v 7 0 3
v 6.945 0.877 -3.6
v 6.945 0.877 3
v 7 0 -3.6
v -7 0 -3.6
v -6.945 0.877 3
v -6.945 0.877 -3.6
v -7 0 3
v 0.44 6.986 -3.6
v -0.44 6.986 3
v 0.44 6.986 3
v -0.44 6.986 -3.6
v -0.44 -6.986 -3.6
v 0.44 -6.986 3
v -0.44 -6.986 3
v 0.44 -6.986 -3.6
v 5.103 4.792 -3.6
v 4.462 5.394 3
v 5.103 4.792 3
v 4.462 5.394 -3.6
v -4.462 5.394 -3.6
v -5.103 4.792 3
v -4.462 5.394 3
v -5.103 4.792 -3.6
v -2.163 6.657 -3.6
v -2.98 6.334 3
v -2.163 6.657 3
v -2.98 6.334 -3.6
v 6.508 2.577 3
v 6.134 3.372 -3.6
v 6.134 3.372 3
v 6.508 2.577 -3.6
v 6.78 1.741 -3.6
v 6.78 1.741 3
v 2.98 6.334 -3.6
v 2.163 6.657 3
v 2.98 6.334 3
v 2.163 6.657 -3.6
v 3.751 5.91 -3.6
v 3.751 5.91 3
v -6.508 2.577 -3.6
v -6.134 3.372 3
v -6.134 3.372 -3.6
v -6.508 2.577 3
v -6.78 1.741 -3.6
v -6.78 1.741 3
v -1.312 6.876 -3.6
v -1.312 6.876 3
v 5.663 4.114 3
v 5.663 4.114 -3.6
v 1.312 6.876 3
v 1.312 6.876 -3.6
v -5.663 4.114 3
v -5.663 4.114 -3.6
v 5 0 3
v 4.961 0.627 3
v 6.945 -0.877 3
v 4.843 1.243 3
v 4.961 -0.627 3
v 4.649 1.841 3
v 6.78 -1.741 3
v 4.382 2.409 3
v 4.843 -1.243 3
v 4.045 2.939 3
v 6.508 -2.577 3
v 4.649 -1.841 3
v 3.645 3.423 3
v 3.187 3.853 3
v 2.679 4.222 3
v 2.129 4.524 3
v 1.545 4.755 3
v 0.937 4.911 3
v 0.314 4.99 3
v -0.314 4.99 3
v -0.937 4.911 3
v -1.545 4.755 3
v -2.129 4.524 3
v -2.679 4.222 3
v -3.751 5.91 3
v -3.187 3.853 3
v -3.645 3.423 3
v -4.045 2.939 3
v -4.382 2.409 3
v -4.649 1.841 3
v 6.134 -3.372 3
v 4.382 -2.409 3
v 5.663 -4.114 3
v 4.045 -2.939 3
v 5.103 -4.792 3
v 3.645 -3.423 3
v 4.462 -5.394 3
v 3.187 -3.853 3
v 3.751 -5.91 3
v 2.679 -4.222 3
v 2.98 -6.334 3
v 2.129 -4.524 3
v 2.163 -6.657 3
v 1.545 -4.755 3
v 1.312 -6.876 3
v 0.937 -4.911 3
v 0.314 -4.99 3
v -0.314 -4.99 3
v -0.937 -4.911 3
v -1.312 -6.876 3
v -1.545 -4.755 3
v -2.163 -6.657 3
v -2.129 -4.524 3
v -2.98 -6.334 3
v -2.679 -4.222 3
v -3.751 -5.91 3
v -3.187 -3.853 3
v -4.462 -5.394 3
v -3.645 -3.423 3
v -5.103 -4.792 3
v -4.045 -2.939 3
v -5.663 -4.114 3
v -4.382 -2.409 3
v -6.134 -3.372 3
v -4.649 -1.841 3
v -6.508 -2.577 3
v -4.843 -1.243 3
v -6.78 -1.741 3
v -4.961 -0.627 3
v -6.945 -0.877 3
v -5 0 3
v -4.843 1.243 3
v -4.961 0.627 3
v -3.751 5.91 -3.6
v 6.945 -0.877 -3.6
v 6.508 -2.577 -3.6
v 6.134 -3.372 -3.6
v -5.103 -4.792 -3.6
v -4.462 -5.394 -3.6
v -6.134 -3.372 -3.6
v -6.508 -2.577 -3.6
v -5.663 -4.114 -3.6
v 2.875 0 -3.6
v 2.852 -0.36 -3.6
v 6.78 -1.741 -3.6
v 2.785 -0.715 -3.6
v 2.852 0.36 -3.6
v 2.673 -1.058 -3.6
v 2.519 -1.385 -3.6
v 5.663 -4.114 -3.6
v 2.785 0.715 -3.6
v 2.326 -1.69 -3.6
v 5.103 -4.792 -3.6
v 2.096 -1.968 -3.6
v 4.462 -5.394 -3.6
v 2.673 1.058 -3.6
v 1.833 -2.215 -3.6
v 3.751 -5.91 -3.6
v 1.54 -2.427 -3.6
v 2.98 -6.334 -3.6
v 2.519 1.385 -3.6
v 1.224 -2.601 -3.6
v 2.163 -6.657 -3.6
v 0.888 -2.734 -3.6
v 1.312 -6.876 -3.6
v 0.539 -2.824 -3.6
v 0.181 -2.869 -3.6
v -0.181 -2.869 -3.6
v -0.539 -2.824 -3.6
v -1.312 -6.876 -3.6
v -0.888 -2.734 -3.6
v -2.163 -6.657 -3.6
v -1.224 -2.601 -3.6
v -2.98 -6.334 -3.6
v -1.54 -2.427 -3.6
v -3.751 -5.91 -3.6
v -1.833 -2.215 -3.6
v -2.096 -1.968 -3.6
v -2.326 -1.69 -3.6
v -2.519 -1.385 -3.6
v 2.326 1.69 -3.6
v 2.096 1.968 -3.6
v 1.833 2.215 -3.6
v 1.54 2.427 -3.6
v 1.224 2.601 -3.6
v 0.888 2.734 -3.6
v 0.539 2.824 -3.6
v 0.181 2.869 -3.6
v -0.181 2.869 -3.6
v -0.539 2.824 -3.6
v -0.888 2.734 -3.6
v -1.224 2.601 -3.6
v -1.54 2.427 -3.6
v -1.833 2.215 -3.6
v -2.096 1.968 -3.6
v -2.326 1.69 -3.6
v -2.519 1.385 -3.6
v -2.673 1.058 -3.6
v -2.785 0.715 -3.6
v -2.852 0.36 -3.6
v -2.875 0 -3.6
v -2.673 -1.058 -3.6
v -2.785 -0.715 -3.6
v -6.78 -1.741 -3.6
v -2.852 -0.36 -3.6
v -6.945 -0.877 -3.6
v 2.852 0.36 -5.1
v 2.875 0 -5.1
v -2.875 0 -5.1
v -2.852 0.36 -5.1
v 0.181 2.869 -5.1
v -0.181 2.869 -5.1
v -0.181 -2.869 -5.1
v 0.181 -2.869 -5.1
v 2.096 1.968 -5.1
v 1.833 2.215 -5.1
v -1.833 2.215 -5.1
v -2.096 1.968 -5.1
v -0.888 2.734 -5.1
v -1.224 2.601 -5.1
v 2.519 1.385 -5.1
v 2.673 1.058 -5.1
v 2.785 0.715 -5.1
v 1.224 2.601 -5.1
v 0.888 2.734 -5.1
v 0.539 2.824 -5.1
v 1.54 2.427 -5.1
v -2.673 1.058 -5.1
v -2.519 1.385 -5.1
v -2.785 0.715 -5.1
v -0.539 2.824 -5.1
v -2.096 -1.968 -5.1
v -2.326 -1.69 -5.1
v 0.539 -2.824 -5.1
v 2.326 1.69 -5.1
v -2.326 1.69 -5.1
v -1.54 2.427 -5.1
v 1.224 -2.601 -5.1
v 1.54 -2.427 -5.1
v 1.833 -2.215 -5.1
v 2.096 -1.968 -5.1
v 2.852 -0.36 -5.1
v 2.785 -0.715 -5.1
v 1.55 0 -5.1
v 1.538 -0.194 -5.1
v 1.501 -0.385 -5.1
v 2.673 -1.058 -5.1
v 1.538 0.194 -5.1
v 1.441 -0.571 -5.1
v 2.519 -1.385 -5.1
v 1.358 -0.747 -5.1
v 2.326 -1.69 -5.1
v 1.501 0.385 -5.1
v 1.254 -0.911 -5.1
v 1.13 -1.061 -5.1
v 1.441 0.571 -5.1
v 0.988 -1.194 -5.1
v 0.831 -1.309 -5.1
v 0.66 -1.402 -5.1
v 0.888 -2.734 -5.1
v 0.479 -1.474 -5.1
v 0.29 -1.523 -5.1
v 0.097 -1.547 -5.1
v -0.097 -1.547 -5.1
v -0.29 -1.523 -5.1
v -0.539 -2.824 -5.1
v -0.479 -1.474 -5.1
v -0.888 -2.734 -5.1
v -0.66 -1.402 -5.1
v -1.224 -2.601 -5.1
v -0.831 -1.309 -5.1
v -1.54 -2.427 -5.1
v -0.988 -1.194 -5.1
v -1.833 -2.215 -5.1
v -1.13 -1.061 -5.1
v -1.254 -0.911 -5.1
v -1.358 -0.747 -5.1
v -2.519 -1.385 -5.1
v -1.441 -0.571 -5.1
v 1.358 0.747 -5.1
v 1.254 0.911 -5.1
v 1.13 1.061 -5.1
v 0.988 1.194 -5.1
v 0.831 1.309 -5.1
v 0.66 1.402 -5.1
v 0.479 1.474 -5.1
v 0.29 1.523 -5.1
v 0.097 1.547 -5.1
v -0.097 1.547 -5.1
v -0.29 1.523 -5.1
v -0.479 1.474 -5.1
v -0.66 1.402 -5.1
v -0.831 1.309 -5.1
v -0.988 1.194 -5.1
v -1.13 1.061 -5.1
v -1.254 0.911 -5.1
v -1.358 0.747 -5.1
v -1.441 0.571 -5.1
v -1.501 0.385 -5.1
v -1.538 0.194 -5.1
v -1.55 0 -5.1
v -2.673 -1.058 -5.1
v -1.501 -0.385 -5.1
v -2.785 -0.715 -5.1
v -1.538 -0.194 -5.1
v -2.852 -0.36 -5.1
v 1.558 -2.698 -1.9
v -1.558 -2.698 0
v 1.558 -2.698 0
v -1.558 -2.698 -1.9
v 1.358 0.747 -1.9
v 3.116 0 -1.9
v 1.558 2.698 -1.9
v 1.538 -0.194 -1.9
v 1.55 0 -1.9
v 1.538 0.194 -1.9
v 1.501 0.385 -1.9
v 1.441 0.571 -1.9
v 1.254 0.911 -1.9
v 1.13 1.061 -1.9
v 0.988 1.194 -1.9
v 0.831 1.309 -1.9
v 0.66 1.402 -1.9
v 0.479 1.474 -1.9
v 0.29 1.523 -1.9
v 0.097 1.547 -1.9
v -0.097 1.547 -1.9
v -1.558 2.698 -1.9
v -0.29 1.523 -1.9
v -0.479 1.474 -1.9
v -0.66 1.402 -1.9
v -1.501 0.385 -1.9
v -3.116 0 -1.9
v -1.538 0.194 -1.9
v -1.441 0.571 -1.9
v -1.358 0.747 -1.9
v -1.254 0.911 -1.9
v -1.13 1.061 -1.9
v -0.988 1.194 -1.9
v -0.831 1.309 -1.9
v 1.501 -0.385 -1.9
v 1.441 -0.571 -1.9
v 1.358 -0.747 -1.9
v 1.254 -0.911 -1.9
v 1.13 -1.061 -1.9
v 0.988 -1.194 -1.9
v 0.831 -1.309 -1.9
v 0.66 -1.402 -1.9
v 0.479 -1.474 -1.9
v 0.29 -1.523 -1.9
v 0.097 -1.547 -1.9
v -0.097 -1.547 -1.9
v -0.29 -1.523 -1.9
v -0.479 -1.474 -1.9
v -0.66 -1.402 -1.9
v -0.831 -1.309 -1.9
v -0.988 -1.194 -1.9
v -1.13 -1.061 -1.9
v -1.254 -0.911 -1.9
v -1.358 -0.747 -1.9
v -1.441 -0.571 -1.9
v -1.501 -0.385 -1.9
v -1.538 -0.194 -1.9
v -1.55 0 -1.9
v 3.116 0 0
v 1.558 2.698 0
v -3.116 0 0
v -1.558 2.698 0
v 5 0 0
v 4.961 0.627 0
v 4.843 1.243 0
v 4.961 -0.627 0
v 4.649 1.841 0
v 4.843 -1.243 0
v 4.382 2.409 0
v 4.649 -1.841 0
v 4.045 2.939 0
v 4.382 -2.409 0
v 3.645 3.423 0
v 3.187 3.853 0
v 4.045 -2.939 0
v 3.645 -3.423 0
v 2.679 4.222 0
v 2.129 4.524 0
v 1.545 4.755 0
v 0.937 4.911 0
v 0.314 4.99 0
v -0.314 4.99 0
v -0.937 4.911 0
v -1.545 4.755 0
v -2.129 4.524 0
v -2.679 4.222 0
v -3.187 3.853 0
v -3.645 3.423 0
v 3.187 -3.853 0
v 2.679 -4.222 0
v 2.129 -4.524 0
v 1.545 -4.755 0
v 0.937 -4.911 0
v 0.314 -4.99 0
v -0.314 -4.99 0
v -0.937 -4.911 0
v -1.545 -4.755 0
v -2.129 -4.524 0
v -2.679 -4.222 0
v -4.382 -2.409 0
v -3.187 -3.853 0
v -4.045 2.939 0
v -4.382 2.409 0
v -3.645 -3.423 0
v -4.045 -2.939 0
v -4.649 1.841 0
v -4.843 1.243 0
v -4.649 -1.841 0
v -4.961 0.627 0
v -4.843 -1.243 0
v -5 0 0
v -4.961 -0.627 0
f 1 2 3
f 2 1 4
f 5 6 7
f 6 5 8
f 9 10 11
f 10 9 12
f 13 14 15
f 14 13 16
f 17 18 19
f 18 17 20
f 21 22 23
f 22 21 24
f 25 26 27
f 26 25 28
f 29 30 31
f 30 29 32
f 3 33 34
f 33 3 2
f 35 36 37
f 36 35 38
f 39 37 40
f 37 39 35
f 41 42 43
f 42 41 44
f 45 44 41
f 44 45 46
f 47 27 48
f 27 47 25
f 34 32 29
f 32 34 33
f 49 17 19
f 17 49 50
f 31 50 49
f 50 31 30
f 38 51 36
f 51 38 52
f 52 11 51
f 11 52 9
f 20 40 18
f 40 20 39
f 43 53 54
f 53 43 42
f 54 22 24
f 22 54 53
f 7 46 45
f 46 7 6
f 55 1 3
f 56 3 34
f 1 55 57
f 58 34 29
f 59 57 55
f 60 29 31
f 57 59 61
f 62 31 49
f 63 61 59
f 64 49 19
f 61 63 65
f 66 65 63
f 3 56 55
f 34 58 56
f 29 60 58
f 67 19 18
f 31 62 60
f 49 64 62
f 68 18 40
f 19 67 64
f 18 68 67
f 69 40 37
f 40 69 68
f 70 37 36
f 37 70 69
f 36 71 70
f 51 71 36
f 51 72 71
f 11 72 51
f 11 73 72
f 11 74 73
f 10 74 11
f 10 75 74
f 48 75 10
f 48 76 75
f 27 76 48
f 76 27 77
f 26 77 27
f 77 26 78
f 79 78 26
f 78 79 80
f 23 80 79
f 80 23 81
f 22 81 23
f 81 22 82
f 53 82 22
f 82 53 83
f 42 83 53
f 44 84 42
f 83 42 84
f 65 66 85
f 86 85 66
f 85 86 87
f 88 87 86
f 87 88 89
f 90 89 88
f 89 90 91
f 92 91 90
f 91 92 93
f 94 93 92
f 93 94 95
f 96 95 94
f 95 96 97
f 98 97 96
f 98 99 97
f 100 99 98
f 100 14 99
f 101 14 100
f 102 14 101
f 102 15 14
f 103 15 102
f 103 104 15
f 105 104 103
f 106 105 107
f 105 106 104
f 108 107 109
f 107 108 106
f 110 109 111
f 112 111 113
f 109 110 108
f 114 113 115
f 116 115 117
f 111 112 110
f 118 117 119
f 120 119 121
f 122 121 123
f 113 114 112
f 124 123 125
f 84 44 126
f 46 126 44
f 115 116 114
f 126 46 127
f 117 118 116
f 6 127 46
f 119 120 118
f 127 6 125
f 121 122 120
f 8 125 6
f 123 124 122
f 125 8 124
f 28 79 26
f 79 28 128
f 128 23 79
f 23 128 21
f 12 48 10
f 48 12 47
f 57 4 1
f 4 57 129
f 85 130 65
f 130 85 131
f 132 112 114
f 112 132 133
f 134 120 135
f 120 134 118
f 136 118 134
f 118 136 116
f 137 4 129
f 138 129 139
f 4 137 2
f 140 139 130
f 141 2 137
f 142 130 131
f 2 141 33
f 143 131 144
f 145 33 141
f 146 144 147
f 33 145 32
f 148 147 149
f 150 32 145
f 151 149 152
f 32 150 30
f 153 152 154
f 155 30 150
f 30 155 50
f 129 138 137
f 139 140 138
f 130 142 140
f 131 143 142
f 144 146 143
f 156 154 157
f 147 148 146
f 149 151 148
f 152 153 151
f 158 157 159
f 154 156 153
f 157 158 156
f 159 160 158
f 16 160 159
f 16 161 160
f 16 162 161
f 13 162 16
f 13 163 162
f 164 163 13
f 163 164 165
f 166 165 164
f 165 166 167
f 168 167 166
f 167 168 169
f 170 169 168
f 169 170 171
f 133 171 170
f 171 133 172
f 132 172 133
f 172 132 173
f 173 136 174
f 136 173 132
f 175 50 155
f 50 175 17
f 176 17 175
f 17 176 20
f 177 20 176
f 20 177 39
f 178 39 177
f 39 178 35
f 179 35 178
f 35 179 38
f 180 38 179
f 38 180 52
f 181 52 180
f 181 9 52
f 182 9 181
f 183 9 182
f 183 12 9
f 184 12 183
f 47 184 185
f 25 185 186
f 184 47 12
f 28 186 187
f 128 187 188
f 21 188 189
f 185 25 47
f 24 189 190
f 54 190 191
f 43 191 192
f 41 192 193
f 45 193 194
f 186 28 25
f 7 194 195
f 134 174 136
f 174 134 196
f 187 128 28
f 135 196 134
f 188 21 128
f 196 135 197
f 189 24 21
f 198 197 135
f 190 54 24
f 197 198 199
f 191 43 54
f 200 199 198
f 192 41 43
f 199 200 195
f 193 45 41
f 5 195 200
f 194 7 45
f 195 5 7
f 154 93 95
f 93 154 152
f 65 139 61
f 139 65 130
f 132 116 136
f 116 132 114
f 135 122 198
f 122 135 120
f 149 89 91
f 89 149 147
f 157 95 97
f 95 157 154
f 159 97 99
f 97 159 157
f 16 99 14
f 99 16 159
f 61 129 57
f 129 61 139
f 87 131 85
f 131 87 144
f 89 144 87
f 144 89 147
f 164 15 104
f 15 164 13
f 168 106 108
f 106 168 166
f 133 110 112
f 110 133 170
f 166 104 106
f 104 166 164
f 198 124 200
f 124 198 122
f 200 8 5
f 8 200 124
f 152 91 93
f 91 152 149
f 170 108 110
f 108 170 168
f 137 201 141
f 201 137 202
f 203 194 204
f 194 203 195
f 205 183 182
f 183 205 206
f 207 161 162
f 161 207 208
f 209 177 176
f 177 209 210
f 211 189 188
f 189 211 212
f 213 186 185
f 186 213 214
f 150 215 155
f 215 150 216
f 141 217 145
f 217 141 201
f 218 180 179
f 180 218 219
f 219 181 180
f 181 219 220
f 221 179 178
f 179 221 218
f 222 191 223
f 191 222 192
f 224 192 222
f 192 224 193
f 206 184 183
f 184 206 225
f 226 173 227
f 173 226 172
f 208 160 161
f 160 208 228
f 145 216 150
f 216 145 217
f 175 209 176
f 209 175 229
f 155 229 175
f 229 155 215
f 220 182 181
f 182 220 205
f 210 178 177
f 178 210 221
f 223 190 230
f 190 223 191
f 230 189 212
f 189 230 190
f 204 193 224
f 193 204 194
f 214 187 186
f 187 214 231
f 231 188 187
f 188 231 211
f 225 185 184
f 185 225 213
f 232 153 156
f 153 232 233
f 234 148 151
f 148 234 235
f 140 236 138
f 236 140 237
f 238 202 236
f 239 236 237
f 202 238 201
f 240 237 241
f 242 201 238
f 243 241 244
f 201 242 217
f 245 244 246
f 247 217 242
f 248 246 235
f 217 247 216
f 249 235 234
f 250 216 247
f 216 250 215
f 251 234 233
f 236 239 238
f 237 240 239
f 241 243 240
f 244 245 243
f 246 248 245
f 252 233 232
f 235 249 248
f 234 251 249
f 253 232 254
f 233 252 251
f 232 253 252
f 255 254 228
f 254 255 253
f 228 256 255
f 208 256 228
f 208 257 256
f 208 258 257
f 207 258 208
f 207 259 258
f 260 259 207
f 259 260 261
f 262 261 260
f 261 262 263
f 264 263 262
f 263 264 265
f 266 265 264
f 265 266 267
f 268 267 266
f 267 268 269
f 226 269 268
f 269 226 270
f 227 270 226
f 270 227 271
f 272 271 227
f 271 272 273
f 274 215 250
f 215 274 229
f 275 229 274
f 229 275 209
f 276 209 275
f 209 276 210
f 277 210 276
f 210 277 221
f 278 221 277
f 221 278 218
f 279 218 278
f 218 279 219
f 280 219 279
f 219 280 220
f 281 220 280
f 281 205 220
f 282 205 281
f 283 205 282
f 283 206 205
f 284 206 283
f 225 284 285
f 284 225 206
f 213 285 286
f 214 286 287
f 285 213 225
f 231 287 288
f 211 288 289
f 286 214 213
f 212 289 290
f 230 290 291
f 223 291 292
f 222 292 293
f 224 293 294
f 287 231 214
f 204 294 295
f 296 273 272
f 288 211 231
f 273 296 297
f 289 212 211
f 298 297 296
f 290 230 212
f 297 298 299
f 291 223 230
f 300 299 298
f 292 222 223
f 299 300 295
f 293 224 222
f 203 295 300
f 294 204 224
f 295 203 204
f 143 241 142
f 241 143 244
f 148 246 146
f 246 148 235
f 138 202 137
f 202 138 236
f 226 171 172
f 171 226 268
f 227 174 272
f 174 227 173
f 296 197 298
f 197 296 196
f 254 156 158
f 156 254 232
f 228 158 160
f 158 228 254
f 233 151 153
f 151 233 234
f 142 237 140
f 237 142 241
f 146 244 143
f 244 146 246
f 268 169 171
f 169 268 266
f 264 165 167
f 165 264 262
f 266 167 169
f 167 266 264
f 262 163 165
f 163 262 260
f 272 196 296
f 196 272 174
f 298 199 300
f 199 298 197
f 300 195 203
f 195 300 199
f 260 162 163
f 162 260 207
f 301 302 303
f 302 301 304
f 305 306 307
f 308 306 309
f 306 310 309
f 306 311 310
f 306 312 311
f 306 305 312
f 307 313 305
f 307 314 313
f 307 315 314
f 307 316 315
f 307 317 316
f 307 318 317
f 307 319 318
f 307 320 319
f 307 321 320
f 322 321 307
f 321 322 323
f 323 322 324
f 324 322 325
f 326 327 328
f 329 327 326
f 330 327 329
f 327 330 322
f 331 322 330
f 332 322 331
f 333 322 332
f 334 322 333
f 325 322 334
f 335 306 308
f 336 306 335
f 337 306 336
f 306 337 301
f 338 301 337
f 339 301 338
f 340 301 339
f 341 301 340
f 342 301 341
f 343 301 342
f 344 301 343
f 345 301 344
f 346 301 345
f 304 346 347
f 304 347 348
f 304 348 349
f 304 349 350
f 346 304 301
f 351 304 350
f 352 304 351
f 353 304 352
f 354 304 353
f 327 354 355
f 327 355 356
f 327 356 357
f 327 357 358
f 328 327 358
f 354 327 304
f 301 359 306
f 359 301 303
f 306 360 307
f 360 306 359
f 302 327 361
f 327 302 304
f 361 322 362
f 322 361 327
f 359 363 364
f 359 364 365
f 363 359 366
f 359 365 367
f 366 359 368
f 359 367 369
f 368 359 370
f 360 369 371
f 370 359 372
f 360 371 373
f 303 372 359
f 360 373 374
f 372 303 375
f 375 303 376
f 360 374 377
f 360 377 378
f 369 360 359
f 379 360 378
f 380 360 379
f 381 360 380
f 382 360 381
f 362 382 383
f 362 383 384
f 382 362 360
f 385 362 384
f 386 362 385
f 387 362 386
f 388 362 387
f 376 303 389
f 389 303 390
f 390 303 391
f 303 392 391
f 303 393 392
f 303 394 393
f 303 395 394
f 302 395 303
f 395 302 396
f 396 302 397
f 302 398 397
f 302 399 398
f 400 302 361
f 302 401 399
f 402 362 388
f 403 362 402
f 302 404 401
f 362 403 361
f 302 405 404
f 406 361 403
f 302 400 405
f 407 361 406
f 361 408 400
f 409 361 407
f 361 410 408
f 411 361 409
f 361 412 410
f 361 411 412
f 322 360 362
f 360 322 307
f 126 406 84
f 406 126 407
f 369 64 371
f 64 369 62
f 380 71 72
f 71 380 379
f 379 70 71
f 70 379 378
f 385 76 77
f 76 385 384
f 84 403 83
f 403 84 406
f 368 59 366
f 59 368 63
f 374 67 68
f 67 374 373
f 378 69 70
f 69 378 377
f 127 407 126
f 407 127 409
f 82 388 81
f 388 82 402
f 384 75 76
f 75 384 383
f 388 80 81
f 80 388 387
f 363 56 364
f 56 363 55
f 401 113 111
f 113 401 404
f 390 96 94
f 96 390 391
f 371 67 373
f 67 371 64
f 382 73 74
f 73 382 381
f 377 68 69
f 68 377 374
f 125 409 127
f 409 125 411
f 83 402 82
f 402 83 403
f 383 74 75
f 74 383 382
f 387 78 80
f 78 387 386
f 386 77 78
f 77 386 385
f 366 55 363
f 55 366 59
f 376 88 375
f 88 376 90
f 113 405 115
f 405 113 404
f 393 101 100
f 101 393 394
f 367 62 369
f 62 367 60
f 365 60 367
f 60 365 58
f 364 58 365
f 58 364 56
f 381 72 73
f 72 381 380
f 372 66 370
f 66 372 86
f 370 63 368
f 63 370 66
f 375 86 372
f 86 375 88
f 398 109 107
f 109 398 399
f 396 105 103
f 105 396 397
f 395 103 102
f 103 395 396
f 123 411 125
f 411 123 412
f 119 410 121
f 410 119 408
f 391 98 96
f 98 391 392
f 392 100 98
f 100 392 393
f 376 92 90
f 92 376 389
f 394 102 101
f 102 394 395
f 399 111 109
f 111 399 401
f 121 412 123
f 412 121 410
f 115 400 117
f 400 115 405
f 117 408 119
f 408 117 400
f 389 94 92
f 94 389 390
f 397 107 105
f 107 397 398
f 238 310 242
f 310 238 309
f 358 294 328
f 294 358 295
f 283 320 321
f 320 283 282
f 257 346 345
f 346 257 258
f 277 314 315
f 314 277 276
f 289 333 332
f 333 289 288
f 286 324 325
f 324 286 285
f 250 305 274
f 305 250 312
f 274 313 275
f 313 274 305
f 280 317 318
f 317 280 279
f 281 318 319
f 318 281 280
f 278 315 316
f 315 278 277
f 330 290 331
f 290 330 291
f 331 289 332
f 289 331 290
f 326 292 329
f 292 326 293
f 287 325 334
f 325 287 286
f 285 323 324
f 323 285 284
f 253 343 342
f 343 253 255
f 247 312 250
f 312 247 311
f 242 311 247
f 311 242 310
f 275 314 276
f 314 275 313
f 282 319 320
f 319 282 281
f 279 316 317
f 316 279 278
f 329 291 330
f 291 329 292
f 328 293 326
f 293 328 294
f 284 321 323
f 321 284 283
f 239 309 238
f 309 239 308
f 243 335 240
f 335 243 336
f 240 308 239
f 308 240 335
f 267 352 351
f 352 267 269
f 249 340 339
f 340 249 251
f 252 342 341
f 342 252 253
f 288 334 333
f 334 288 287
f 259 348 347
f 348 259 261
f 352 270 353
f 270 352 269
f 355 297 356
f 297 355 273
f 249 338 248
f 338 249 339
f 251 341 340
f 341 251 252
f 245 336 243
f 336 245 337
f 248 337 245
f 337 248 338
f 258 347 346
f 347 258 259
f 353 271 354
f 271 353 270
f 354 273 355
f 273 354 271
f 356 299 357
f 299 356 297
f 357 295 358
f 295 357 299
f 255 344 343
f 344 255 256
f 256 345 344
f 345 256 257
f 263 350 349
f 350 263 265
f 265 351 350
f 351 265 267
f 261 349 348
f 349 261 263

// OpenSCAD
$fn = 50;

difference() {
	union() {
		translate(v = [0, 0, -3.5999999999999996]) {
			cylinder(h = 6.6, r = 7.0);
		}
		#translate(v = [0, 0, -5.1]) {
			cylinder(h = 5.1, r = 2.875);
		}
	}
	union() {
		translate(v = [0, 0, 0]) {
			rotate(a = [0, 0, 0]) {
				difference() {
					union() {
						translate(v = [0, 0, -1.9]) {
							linear_extrude(height = 1.9) {
								polygon(points = [[3.1158, 0.0], [1.5579000000000005, 2.698361953111554], [-1.5578999999999994, 2.6983619531115544], [-3.1158, 3.815754496783323e-16], [-1.5579000000000014, -2.6983619531115535], [1.557899999999998, -2.6983619531115552]]);
							}
						}
					}
					union();
				}
			}
		}
		#cylinder(h = 3, r = 5.0);
		#translate(v = [0, 0, -100.0]) {
			cylinder(h = 200, r = 1.55);
		}
	}
}
